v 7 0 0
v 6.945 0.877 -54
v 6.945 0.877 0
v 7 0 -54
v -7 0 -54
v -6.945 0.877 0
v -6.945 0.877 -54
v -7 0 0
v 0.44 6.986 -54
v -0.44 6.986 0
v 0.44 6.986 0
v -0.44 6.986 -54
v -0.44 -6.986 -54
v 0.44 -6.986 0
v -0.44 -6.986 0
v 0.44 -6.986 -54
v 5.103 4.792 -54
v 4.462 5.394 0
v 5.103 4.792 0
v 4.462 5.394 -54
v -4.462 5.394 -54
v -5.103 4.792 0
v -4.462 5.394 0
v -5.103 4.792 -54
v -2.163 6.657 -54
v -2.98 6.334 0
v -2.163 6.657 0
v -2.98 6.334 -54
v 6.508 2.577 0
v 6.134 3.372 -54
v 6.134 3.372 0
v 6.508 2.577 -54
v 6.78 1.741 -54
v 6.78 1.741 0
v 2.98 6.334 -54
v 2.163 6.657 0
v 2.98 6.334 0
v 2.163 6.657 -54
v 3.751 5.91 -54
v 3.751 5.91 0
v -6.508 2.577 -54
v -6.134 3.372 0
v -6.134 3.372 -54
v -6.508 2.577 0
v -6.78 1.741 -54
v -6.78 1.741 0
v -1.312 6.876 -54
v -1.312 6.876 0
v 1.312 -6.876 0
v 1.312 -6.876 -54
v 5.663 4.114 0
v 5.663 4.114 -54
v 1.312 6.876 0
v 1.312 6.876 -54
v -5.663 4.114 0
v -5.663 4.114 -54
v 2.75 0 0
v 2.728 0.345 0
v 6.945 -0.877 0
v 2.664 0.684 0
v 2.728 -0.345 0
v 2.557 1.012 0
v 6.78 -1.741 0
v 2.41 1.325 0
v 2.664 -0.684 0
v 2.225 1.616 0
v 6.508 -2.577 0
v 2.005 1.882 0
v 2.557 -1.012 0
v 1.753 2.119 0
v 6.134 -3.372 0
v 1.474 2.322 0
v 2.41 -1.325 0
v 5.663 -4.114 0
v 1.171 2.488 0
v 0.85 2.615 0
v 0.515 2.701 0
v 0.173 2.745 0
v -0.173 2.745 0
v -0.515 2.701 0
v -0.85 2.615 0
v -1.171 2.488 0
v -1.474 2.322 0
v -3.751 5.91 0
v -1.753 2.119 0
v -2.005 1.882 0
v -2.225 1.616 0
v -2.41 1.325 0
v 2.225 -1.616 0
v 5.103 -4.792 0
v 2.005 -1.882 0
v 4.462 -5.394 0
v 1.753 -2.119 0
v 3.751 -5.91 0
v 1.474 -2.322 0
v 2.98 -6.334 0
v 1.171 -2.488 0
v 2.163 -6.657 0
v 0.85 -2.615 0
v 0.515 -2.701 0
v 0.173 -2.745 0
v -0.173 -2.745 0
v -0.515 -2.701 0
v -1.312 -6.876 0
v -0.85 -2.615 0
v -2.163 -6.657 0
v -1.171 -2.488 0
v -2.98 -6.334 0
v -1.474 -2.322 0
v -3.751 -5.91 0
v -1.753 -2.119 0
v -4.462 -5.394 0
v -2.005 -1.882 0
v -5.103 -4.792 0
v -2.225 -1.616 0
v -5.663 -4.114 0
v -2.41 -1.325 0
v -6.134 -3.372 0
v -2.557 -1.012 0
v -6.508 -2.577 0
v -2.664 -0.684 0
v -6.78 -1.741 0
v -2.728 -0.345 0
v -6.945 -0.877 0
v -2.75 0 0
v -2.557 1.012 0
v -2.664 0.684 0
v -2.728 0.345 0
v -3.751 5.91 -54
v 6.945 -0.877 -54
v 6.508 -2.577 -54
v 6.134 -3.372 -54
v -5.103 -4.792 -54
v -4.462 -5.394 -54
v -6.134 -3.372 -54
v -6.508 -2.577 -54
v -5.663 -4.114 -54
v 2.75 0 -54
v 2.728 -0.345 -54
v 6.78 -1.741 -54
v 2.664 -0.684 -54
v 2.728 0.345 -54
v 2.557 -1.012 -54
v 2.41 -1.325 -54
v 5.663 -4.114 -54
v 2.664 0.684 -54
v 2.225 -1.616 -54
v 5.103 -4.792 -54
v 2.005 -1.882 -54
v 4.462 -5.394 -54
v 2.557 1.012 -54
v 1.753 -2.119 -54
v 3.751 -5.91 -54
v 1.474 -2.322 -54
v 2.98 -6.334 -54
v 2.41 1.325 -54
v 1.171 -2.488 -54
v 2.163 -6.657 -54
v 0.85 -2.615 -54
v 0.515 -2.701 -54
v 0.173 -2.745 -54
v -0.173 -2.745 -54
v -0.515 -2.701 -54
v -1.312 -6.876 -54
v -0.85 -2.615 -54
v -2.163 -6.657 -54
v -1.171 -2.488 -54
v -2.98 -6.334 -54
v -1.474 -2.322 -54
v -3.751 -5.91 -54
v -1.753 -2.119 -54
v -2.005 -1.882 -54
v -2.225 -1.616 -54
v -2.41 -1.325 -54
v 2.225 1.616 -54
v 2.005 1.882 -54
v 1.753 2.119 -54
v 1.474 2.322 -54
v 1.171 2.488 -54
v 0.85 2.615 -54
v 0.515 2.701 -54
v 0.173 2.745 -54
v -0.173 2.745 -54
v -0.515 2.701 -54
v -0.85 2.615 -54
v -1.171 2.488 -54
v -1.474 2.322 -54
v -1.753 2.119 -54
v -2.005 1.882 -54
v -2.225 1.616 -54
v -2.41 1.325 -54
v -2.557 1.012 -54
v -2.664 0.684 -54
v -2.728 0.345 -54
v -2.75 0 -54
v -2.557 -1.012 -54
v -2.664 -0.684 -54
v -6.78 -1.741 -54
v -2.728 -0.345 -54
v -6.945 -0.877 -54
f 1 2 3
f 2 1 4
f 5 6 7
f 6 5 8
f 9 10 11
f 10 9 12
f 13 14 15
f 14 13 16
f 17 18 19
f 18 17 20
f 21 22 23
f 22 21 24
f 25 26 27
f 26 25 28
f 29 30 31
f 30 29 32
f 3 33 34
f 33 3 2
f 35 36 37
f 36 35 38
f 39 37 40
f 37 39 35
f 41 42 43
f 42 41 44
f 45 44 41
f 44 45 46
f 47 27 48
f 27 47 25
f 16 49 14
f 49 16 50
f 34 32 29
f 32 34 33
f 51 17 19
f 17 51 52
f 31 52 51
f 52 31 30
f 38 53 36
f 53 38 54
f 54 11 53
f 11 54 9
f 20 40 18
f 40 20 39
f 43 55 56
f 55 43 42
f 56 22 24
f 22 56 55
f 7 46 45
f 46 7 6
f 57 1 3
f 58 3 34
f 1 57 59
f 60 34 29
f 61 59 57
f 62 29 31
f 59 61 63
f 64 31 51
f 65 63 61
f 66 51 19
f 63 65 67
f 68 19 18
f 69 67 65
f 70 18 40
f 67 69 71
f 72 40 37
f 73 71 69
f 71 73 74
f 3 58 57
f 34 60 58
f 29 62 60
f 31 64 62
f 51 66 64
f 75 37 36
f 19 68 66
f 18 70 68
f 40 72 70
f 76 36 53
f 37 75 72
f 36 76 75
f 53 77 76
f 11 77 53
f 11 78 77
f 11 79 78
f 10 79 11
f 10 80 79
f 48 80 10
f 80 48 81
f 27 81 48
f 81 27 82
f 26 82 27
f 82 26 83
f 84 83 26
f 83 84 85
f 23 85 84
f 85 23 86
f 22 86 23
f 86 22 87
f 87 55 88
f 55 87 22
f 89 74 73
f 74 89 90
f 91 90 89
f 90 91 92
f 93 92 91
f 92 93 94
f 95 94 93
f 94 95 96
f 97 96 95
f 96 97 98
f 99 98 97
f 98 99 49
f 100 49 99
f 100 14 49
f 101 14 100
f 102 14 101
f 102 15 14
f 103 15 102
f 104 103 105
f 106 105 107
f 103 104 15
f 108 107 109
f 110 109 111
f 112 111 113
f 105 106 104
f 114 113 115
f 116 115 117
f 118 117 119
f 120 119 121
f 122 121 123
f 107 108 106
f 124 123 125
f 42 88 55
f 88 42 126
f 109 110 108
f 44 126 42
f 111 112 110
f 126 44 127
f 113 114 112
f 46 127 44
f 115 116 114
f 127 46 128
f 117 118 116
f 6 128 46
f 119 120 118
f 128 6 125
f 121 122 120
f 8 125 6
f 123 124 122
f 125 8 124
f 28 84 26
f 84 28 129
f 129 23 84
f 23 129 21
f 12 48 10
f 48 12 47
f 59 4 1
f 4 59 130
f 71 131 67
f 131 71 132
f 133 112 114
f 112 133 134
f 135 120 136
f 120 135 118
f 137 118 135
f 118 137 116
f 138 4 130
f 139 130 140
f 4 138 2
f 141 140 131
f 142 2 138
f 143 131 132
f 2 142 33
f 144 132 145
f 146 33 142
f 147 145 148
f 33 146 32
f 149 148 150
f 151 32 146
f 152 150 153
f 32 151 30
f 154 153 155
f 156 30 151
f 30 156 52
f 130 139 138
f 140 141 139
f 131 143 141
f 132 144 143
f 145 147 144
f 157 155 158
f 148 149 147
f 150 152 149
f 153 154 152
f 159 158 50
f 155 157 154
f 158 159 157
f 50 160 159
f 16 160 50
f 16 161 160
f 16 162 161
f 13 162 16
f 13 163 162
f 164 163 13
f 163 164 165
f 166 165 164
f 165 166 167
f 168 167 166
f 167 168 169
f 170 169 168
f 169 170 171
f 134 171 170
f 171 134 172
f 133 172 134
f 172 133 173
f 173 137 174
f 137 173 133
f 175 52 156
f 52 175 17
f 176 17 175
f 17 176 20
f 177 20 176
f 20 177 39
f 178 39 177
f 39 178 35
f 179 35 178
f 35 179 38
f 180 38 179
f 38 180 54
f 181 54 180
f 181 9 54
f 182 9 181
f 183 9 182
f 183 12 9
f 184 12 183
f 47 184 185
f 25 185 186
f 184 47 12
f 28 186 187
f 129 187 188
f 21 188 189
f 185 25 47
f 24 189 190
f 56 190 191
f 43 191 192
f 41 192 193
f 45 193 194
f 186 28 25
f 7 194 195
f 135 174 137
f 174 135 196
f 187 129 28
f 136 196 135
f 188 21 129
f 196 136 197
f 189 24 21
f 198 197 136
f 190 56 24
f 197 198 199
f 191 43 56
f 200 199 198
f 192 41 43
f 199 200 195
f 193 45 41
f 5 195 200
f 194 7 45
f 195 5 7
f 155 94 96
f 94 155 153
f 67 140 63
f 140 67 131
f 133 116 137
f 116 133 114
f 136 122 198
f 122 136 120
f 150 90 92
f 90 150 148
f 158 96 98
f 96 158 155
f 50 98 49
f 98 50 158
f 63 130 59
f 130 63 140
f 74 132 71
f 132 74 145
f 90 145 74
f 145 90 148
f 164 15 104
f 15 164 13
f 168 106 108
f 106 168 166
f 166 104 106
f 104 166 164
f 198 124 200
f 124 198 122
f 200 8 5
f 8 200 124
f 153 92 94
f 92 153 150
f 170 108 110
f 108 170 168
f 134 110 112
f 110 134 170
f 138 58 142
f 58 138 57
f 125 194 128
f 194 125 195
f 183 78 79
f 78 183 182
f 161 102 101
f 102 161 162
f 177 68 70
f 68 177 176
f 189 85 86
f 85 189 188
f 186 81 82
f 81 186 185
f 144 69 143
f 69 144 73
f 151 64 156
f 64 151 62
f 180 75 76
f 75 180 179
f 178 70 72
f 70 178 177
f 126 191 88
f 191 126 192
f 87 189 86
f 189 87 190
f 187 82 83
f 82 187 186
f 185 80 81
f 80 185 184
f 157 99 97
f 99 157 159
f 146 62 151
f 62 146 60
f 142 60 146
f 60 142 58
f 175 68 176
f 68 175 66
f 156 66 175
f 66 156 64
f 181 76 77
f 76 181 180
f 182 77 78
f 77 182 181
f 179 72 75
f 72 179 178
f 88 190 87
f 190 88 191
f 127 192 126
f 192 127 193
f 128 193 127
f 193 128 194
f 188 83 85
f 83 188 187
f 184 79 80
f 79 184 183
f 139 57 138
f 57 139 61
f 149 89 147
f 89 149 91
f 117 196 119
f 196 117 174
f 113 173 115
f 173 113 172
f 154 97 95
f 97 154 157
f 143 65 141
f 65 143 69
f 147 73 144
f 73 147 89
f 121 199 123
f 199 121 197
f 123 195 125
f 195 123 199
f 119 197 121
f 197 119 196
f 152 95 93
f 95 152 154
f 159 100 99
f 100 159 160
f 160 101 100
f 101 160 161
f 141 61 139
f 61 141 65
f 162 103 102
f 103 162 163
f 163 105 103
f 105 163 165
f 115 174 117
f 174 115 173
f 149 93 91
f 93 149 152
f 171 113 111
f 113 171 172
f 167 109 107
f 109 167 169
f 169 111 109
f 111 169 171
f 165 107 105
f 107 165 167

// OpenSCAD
$fn = 50;


difference() {
	union() {
		translate(v = [0, 0, -54.0000000000]) {
			cylinder(h = 54, r = 7.0000000000);
		}
		cylinder(h = 0, r = 17.0000000000);
	}
	union() {
		#translate(v = [0, 0, -54]) {
			cylinder(h = 54, r = 2.7500000000);
		}
	}
}
